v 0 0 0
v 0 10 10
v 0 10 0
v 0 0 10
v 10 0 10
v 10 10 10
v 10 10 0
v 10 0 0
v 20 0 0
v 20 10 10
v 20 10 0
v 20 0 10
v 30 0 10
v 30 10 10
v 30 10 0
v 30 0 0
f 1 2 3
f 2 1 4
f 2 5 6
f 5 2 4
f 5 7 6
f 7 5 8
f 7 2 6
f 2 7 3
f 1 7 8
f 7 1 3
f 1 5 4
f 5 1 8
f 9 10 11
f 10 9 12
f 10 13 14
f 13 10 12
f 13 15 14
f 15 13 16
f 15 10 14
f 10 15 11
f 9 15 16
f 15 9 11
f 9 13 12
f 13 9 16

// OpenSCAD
cube(size=[10, 10, 10]);
//sphere(r=10);
translate([20, 0, 0]) {
    cube(size=[10, 10, 10]);
} 

//running command> cmd /C "C:\Program Files\OpenSCAD\openscad.exe" --viewall c:\Code\PlayArea\Git_OpenScad\OpenScadProjects\Projects\RE_stlFileFromat\SimpleThing.scad
//running command> cmd /C "C:\Program Files\OpenSCAD\openscad.exe" --o  "c:\Code\PlayArea\Git_OpenScad\OpenScadProjects\Projects\RE_stlFileFromat\SimpleThing.stl" c:\Code\PlayArea\Git_OpenScad\OpenScadProjects\Projects\RE_stlFileFromat\SimpleThing.scad
